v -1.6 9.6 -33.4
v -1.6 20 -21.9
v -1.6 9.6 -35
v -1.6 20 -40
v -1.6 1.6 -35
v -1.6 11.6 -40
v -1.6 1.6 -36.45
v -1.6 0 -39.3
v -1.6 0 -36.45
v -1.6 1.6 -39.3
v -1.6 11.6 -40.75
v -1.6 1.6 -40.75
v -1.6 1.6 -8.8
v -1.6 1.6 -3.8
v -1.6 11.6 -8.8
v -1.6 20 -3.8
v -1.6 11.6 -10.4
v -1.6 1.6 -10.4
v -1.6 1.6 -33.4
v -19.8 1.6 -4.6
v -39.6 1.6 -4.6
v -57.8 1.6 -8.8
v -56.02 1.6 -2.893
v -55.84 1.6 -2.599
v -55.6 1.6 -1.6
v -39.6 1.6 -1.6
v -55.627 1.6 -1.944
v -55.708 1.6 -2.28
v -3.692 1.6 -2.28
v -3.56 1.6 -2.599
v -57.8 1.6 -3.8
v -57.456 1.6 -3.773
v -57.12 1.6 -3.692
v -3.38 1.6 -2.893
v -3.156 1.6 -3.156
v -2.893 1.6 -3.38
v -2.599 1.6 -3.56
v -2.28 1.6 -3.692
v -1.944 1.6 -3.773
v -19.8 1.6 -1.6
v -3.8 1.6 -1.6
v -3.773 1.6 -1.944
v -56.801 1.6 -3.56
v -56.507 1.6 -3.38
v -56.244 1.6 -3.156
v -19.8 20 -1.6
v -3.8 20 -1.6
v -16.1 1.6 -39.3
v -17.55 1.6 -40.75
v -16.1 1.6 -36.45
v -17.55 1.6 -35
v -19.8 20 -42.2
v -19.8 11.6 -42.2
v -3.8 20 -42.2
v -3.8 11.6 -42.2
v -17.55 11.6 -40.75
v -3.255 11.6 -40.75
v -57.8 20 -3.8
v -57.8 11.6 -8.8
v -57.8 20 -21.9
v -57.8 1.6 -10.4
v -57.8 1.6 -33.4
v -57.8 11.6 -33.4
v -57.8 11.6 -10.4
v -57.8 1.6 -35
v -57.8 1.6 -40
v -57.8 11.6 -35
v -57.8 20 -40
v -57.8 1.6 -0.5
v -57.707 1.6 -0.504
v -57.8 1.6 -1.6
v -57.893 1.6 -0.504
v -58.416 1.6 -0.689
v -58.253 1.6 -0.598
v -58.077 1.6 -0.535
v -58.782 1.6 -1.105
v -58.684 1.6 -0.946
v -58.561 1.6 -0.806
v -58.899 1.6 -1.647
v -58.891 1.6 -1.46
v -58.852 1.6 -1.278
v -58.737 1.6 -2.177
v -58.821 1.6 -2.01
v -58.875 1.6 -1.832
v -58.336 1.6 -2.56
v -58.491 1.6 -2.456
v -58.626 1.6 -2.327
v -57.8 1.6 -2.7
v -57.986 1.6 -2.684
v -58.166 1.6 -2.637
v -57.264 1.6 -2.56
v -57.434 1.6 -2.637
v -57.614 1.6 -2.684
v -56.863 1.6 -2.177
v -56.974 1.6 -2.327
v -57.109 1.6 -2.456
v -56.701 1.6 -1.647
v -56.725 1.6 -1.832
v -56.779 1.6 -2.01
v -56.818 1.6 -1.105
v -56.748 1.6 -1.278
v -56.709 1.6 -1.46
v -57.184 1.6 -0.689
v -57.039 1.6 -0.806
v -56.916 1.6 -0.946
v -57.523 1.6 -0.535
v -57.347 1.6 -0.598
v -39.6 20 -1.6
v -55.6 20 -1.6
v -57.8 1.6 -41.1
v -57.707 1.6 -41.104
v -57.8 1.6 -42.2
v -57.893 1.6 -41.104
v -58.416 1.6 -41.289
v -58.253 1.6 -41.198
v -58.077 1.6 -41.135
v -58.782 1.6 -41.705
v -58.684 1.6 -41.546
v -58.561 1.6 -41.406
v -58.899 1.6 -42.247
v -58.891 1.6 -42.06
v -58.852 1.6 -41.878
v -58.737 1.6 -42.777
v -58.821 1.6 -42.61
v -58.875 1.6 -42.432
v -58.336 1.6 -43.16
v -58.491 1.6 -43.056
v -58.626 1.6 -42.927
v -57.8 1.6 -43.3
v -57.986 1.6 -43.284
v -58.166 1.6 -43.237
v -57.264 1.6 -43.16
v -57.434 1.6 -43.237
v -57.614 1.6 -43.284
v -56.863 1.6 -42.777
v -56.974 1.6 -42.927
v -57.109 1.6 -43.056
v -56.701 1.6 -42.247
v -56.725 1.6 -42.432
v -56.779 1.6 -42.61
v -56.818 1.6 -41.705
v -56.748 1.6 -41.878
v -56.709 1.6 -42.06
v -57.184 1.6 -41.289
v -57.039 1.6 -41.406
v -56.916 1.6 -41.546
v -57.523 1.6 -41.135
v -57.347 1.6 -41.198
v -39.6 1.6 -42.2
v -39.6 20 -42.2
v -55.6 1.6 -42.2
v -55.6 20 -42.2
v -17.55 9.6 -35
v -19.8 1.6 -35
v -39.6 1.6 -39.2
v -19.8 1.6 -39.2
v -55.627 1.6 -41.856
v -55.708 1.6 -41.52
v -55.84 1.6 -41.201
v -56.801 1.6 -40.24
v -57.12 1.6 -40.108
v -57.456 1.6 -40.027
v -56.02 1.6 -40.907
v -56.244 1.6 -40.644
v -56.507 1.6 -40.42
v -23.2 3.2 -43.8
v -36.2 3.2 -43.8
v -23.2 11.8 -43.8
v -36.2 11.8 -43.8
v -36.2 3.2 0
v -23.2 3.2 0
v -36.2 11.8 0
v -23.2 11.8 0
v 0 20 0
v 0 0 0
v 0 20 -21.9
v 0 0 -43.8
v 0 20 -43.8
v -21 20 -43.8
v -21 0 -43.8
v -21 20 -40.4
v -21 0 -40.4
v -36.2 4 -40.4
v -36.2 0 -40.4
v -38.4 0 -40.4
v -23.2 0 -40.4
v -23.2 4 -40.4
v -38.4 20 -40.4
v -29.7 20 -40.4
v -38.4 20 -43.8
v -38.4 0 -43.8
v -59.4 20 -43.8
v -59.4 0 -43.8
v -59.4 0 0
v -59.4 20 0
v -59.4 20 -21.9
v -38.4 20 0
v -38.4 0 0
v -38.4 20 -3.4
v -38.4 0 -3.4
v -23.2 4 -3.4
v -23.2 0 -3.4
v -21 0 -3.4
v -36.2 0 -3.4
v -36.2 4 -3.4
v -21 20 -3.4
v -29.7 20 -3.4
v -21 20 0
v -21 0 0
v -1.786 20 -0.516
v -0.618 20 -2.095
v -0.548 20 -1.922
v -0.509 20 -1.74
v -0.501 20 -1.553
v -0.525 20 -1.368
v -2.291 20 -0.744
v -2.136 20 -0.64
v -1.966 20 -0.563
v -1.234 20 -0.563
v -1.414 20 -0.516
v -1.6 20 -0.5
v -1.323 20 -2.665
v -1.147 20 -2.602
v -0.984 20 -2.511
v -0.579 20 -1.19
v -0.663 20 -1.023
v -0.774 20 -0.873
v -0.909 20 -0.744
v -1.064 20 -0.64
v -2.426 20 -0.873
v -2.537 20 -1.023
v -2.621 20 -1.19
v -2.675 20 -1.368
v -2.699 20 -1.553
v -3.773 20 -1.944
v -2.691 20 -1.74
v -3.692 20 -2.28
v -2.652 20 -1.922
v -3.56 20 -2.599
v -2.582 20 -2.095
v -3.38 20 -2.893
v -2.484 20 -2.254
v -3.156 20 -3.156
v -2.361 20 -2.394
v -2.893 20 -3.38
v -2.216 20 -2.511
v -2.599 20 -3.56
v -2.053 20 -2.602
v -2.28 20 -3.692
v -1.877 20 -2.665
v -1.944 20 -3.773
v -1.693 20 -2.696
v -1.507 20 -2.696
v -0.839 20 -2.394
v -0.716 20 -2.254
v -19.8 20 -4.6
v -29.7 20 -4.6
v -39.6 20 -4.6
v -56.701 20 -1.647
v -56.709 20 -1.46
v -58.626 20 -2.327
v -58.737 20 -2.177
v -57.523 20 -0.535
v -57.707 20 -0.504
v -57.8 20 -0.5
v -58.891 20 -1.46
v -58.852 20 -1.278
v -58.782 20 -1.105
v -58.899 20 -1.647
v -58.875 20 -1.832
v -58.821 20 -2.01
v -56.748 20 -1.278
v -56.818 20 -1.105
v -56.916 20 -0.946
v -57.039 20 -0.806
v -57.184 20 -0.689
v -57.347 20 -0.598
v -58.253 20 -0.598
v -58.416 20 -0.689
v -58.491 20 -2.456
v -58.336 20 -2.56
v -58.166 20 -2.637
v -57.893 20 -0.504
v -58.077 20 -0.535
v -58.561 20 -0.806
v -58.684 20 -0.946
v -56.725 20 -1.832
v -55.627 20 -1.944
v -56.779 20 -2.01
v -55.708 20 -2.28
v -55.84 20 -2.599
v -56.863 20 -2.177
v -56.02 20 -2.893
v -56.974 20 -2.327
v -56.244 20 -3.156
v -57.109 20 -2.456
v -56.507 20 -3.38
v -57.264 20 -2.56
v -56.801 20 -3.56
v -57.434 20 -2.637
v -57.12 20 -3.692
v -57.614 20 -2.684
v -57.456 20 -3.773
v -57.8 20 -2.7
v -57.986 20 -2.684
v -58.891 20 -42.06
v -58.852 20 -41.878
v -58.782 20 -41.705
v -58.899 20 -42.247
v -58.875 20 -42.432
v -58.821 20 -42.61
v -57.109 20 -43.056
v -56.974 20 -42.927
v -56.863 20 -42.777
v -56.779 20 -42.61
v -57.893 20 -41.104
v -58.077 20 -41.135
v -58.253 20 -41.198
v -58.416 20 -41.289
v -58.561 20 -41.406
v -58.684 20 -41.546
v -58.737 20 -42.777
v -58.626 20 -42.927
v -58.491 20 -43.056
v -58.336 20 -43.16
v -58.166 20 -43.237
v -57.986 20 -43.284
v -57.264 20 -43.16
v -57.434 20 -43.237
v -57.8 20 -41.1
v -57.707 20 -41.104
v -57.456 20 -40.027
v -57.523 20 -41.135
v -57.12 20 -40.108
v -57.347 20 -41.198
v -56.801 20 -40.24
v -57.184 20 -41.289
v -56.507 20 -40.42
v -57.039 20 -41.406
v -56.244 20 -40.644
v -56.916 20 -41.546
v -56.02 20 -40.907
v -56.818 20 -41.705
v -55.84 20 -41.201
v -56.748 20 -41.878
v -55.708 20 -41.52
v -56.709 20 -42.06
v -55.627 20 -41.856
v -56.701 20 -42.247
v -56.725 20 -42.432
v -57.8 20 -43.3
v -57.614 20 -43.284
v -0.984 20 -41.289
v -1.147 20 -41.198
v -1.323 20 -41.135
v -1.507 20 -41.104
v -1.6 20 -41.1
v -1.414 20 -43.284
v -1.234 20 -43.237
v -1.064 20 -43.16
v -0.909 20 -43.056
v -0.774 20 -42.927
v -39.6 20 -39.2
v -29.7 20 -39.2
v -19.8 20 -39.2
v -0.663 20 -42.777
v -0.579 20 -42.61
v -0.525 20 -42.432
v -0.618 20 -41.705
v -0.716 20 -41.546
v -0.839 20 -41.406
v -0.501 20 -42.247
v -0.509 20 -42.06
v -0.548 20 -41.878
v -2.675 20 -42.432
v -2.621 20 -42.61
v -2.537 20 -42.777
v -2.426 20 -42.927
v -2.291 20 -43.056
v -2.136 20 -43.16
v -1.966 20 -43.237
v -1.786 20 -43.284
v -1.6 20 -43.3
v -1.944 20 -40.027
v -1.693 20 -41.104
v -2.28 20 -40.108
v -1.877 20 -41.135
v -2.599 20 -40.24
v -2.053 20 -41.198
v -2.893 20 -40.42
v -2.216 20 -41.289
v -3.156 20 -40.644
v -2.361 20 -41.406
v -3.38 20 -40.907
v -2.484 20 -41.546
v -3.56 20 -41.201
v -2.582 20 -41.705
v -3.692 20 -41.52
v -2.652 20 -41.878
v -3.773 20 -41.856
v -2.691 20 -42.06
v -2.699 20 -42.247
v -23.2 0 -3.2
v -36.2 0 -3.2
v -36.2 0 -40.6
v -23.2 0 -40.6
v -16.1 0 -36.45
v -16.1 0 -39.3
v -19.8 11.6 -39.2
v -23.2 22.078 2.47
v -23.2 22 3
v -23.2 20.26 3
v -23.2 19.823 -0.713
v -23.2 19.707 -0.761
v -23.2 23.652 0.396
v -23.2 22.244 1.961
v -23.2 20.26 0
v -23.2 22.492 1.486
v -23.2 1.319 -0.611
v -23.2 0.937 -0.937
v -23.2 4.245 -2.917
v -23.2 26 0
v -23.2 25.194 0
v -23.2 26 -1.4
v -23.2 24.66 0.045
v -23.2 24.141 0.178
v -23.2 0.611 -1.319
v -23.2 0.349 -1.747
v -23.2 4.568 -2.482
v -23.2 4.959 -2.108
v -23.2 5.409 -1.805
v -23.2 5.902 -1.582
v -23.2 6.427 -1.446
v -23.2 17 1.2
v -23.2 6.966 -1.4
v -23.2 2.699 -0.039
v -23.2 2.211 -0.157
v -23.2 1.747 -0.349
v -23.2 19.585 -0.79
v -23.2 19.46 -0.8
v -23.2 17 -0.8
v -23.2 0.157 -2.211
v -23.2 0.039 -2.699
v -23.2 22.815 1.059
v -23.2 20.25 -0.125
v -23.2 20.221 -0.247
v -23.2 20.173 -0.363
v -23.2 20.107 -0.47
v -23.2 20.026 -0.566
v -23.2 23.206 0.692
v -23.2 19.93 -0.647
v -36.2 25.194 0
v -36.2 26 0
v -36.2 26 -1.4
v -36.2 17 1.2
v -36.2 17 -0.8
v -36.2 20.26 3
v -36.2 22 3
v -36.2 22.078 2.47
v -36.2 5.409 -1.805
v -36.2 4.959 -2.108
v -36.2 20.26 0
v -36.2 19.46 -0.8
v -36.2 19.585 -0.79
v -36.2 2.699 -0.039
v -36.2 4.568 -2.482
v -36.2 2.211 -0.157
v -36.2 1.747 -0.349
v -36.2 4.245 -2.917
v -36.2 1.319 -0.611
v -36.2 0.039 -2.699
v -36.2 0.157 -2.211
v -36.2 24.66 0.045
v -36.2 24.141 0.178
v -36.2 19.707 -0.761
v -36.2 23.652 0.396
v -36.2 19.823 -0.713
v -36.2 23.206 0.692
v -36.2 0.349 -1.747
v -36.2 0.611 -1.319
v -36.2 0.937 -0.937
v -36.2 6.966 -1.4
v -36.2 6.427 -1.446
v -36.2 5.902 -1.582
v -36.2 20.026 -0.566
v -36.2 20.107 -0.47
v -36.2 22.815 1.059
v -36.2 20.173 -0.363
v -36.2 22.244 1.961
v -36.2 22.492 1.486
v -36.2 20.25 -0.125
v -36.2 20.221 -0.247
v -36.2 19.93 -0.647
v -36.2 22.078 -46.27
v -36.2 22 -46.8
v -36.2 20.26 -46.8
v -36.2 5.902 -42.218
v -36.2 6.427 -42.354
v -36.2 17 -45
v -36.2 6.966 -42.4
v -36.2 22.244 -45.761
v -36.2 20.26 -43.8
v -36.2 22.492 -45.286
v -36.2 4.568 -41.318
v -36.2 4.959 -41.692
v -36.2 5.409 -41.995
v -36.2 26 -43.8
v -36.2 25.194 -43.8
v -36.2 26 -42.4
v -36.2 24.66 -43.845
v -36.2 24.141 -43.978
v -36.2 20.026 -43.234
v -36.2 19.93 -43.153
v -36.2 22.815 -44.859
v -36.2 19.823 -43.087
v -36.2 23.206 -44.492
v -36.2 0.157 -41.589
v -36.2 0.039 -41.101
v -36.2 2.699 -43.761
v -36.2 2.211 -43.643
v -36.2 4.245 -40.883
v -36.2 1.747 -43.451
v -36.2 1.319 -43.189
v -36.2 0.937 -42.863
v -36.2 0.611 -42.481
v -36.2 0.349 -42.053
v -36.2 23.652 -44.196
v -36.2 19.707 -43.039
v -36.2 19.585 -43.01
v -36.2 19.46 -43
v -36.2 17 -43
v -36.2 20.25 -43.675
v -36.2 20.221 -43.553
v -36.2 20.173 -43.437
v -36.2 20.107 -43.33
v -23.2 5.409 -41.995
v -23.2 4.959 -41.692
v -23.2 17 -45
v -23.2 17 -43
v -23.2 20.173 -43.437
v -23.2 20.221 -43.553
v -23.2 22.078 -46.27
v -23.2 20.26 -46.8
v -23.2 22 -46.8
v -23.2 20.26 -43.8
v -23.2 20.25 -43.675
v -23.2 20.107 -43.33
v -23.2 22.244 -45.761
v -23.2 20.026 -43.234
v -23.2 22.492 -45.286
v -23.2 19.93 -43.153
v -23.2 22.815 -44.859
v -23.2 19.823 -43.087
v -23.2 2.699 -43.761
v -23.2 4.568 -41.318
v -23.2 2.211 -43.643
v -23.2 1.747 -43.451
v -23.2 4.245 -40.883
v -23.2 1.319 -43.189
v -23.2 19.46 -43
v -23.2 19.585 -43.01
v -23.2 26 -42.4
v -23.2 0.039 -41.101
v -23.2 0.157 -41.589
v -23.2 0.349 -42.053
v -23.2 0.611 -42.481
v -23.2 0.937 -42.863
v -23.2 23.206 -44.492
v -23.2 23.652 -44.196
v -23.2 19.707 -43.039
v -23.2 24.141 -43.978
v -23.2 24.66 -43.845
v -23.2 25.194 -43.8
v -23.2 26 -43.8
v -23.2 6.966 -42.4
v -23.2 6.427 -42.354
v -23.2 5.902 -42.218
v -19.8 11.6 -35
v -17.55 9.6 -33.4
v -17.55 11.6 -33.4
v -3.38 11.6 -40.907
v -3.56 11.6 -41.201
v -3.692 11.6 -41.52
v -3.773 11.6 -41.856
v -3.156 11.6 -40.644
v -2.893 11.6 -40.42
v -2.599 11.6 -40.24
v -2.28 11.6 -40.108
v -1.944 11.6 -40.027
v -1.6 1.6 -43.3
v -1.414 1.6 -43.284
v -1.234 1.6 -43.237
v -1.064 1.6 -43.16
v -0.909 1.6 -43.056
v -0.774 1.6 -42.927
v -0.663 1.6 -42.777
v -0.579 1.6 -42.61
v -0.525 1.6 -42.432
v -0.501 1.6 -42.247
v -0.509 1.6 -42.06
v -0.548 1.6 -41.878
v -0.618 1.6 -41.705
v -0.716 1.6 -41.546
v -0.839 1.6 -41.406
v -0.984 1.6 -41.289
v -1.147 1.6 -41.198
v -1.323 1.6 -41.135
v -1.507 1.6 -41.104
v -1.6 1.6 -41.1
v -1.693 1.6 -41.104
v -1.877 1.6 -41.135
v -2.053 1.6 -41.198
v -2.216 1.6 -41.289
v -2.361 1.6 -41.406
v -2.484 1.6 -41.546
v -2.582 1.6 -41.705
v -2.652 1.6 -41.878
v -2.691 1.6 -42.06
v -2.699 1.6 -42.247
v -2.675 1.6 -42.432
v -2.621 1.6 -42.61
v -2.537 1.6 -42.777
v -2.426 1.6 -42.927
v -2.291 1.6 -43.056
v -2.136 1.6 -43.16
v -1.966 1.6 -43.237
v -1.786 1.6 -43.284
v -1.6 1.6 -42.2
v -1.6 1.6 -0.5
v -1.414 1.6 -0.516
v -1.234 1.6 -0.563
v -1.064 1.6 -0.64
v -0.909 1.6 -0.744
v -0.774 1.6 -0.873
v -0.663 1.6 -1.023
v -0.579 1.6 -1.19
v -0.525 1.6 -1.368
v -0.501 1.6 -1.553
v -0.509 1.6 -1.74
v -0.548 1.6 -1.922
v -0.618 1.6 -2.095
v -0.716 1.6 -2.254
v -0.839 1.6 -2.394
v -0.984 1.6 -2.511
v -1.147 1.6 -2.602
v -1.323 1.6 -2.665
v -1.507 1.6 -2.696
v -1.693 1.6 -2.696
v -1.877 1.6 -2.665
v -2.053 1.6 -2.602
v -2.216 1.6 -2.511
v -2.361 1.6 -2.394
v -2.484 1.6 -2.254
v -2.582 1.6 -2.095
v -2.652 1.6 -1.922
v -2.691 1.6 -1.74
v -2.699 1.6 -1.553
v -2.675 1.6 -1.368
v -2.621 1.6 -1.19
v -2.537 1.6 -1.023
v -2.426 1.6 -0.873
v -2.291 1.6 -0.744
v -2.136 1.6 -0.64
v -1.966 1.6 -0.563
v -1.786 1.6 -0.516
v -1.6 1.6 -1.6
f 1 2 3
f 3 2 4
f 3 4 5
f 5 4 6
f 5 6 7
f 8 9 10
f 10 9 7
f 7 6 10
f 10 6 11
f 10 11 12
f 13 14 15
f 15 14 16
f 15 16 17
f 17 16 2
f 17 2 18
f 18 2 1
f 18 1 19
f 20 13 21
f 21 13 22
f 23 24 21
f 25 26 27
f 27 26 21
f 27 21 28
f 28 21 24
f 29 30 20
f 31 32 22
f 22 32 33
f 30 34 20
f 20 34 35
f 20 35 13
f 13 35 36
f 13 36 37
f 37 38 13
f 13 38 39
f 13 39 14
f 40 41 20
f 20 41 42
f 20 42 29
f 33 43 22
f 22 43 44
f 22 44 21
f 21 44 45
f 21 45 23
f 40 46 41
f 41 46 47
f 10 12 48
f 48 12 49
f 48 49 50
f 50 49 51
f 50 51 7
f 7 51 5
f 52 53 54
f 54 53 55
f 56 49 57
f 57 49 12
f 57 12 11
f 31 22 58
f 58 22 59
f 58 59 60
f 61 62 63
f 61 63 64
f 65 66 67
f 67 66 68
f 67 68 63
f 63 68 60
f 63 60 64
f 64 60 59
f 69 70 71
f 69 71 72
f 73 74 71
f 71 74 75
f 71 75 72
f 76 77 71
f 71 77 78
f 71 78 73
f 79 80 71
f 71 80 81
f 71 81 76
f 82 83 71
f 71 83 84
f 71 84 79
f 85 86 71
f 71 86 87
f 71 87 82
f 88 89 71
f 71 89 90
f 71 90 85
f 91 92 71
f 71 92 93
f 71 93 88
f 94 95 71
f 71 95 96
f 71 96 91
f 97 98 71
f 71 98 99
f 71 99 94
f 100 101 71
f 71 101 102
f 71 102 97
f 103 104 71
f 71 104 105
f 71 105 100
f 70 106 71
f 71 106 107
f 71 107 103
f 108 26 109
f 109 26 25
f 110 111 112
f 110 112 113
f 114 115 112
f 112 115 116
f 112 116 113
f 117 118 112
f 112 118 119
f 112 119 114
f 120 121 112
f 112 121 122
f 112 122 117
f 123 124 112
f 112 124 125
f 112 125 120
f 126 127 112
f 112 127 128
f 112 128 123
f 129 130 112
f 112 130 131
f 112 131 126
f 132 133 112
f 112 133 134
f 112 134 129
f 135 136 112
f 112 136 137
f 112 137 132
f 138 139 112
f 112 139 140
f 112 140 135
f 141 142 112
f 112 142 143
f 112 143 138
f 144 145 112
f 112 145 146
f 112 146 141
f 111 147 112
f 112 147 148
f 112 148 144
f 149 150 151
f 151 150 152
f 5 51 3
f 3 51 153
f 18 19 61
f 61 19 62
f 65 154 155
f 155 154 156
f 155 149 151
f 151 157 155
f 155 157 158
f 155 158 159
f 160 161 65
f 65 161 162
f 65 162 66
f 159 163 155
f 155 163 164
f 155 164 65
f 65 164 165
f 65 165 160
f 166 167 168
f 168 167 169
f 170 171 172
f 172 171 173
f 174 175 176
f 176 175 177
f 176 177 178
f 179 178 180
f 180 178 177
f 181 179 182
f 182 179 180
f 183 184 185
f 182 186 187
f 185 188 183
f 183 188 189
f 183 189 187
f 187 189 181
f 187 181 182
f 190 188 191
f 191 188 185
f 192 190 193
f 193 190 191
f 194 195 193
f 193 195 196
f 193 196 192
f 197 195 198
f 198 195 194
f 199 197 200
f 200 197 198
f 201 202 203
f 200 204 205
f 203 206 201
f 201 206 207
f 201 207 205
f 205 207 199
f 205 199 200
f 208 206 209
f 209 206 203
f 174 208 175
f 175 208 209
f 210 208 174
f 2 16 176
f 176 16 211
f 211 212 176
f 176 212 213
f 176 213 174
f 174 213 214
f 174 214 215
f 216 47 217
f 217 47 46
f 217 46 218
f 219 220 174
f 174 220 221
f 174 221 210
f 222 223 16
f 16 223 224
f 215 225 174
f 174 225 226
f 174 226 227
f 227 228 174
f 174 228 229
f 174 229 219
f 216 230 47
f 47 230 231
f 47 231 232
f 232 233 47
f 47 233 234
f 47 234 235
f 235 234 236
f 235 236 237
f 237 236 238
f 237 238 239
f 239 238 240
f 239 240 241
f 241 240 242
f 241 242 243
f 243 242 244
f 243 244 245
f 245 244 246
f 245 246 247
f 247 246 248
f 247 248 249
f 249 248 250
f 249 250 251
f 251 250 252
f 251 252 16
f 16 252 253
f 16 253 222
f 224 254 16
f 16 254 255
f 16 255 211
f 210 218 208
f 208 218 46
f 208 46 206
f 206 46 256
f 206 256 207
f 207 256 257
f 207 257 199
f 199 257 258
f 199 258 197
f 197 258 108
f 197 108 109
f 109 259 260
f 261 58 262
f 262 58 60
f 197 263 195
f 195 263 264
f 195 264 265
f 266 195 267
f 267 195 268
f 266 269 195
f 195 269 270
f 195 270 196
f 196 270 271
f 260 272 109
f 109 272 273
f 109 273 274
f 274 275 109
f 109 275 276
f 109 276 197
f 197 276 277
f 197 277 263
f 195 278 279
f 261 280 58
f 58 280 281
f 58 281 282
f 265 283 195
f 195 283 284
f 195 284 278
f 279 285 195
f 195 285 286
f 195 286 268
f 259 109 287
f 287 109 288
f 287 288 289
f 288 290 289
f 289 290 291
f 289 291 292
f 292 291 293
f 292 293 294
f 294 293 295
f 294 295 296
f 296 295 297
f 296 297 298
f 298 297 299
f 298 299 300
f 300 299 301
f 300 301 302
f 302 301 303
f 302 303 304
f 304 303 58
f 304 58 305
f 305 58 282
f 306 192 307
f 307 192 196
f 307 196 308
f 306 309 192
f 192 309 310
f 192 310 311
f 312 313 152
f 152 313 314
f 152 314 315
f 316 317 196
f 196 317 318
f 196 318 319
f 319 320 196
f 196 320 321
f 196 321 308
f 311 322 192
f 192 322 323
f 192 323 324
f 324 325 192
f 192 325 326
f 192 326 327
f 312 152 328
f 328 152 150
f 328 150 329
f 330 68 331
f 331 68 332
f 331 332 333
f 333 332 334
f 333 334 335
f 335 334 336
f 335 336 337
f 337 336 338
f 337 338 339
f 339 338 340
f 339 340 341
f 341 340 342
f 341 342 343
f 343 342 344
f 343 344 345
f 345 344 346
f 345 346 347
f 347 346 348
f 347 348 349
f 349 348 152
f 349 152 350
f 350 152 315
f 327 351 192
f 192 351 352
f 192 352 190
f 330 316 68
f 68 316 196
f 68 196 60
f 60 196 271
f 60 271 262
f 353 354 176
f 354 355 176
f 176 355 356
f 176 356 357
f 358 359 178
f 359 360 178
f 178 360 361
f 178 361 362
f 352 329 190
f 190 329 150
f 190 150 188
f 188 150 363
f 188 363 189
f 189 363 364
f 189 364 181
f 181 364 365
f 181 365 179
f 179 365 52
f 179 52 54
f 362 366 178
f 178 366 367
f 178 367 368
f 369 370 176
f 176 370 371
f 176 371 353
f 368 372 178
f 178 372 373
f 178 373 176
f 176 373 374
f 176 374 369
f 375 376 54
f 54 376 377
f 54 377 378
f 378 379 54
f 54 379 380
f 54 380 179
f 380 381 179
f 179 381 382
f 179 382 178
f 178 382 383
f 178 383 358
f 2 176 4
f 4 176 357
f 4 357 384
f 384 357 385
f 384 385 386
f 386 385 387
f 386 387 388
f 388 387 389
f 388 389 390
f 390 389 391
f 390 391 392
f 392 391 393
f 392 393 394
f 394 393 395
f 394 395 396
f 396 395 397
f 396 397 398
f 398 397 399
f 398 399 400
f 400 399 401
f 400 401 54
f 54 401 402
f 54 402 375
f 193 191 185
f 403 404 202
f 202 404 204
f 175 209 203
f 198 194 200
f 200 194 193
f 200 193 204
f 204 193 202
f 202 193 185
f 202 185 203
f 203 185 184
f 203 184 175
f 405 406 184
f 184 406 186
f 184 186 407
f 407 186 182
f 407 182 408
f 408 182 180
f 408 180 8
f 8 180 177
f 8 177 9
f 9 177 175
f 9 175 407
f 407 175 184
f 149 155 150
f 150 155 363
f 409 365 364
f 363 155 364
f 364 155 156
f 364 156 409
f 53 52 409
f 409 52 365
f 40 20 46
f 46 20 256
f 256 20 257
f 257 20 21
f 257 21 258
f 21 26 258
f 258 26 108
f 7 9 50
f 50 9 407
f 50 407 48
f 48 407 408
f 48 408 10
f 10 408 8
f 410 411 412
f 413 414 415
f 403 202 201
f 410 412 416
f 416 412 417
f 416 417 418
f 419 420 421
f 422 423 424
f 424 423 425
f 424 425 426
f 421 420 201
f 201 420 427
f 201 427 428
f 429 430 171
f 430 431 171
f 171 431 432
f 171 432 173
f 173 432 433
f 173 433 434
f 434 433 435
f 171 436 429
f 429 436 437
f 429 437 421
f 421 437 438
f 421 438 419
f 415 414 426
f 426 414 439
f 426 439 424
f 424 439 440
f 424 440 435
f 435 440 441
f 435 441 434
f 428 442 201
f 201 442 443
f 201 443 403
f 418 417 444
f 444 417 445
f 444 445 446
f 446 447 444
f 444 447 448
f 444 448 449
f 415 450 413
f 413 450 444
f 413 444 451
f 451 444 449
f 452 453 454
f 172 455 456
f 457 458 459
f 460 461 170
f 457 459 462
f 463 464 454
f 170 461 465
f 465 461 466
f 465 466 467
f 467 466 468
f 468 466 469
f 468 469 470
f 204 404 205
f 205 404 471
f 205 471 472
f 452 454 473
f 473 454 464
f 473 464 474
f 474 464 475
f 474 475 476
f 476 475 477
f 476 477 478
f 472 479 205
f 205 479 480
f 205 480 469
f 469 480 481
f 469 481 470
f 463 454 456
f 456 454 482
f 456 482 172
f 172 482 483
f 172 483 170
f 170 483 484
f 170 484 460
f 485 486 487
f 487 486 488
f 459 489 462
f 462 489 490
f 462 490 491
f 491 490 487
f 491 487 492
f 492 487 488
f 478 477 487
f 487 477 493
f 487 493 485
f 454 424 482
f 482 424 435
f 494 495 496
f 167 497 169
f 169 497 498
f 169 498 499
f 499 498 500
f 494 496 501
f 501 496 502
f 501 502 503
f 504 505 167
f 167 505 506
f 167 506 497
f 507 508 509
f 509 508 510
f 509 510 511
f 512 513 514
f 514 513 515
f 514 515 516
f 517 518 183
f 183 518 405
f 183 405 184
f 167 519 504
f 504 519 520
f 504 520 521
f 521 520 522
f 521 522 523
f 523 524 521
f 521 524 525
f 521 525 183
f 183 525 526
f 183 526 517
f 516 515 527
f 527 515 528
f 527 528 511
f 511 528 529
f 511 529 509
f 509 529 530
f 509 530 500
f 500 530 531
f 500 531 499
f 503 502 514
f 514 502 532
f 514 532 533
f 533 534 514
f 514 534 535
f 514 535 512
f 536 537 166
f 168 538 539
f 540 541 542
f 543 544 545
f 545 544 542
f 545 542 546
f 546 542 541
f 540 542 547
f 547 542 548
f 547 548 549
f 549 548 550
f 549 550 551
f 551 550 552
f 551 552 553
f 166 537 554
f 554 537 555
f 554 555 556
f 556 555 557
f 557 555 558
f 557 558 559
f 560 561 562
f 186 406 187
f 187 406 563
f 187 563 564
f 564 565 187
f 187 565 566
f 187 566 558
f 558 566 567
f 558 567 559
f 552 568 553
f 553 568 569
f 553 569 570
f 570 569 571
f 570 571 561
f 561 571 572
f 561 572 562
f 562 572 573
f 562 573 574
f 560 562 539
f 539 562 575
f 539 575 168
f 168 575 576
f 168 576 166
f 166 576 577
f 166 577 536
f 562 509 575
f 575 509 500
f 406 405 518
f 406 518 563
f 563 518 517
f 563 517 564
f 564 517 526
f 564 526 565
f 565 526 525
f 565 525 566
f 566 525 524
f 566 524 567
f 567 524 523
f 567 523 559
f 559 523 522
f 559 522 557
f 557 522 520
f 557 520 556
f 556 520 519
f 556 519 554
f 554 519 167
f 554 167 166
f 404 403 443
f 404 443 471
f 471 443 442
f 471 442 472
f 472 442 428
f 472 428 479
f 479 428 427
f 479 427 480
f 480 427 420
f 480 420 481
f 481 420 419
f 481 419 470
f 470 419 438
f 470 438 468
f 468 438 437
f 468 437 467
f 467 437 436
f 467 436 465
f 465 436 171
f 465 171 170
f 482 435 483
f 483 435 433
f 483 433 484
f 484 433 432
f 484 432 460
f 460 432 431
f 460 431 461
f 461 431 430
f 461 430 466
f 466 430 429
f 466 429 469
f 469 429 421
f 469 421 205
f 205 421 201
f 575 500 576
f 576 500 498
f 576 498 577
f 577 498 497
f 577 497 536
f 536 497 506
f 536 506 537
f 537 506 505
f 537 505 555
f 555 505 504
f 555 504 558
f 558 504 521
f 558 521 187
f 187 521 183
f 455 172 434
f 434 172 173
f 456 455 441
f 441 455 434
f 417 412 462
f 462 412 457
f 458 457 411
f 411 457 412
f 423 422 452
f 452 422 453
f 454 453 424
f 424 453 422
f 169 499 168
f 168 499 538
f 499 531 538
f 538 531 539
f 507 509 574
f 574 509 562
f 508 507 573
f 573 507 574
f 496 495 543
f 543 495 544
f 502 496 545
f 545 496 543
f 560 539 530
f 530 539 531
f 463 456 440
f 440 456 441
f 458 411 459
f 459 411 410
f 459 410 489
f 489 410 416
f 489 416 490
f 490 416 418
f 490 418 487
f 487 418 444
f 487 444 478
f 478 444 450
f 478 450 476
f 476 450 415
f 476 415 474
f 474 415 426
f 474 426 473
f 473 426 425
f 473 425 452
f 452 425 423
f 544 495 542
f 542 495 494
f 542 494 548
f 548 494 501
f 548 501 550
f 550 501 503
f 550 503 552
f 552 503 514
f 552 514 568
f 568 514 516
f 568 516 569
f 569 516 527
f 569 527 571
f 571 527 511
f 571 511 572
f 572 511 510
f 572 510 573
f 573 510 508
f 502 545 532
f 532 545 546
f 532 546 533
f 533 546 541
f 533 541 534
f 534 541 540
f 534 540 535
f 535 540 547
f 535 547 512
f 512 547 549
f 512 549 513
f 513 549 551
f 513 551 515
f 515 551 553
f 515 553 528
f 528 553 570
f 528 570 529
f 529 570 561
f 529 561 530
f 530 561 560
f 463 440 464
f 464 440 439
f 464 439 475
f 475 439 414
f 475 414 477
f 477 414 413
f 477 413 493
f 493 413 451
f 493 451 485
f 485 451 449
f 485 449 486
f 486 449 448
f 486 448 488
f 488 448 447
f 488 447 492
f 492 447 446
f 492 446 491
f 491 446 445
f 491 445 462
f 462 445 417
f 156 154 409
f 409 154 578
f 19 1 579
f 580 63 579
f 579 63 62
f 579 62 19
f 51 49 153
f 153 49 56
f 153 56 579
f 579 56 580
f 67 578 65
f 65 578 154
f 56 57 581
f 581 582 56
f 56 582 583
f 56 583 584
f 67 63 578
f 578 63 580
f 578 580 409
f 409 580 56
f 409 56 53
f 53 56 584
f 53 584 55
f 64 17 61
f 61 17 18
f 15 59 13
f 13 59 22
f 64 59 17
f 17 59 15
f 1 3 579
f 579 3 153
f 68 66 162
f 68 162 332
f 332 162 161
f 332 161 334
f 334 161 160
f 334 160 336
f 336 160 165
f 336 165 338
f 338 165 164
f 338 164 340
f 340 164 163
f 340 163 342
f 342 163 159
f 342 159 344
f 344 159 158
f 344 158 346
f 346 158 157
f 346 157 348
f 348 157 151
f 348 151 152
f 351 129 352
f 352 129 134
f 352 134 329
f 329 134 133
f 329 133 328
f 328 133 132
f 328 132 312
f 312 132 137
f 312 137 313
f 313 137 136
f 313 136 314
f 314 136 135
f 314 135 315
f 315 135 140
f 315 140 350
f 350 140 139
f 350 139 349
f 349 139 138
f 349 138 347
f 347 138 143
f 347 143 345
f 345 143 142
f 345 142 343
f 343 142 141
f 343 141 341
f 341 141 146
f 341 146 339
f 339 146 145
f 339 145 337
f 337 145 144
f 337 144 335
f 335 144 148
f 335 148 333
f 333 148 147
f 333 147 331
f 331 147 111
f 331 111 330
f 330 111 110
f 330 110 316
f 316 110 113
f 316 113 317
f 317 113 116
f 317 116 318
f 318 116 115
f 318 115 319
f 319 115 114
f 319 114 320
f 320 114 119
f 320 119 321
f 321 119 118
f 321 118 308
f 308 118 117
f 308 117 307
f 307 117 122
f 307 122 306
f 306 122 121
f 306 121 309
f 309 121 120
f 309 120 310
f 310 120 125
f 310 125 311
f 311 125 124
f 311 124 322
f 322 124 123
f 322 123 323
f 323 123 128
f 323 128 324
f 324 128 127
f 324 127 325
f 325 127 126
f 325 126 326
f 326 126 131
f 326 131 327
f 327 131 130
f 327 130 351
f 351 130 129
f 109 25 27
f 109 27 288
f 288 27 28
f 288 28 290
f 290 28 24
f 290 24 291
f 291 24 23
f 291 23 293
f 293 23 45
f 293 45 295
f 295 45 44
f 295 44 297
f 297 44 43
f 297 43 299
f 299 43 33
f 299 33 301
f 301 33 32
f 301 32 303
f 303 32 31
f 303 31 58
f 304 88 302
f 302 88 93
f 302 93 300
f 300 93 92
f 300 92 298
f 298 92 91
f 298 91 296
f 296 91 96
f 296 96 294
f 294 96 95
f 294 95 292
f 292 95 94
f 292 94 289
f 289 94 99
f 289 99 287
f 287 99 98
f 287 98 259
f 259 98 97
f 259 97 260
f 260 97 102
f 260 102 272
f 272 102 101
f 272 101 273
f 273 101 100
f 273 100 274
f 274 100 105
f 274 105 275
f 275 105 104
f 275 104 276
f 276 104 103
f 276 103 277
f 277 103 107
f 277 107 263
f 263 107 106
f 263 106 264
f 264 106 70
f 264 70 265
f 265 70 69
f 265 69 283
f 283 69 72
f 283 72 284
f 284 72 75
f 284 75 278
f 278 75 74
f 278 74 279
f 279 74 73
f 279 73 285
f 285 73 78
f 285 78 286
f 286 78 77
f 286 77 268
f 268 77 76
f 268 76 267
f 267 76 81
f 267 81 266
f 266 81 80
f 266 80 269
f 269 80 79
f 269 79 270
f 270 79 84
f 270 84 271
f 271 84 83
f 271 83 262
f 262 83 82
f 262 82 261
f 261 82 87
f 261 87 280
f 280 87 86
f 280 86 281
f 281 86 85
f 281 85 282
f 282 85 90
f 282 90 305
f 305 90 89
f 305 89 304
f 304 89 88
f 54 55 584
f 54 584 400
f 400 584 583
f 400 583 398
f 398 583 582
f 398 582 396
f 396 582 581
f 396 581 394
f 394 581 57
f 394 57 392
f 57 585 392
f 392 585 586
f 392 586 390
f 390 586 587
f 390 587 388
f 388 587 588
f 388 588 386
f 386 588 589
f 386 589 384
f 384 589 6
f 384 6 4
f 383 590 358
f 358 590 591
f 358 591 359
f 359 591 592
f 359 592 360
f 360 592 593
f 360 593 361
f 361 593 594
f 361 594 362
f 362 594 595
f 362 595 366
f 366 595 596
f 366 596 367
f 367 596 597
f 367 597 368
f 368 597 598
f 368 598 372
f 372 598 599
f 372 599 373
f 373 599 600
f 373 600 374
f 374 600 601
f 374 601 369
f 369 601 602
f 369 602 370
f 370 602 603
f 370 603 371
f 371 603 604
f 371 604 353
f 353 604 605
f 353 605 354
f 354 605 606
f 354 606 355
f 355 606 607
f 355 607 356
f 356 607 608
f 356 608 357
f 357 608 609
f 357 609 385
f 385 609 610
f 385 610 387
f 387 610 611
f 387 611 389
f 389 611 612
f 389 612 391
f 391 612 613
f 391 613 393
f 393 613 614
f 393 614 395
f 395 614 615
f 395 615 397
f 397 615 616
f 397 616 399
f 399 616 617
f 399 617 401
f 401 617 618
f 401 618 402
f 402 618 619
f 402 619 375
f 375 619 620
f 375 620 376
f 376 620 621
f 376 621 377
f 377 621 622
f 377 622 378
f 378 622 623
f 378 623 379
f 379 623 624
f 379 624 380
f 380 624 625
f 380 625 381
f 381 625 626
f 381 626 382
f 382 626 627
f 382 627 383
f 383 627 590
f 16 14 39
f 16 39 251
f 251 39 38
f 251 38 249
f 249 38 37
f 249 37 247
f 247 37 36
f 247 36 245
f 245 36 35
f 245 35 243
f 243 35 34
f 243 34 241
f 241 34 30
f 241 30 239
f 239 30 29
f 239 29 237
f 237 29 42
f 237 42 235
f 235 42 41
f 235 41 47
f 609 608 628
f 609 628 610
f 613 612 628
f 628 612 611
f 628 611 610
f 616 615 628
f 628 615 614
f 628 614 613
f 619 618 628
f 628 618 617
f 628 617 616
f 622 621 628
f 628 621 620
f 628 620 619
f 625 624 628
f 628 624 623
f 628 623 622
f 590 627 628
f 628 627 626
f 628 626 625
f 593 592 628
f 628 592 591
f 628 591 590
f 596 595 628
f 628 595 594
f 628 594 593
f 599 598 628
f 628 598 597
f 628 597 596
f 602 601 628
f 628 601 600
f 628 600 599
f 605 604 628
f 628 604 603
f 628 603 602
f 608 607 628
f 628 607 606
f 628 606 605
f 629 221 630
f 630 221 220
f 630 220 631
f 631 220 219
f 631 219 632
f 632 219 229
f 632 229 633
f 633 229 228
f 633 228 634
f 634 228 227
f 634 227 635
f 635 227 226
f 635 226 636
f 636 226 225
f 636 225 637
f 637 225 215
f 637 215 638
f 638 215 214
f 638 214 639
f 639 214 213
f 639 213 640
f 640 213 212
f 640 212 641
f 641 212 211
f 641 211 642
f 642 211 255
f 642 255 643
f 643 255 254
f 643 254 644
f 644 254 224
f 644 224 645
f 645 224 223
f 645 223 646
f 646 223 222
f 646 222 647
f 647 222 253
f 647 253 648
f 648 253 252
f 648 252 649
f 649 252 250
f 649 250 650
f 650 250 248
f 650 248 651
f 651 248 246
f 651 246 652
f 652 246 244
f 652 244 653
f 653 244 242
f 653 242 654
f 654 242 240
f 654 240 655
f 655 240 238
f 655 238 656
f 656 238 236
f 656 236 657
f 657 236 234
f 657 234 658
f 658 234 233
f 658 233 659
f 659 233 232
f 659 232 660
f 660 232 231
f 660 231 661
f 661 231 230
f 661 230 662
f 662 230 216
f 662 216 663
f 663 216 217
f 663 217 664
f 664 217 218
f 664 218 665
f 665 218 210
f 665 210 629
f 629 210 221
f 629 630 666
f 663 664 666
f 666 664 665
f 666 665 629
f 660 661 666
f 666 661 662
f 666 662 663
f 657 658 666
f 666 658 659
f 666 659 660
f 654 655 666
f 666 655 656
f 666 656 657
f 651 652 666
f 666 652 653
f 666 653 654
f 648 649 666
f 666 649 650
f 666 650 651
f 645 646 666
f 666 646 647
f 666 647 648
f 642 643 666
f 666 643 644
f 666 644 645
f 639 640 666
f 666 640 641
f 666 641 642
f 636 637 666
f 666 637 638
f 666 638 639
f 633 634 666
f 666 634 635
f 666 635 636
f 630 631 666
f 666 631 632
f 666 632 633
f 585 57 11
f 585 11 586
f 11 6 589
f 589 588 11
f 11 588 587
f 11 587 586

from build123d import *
from build123d.topology import SkipClean

# Parameters (mm, degrees)
BOSS_EXTRUDE1_DEPTH   = 20
CUT_EXTRUDE1_DEPTH    = 18.4
SKETCH3_W             = 14.5
SKETCH3_H             = 2.85
CUT_EXTRUDE2_DEPTH    = 18.4
SKETCH4_W             = 13
SKETCH4_H             = 1.4
BOSS_EXTRUDE2_DEPTH   = 22
BOSS_EXTRUDE2_2_DEPTH = 22
SKETCH5_W             = 13
SKETCH5_H             = 3.4
BOSS_EXTRUDE3_DEPTH   = 4
FILLET1_R             = 3.2
FILLET2_R             = 3.2
BOSS_EXTRUDE4_DEPTH   = 13
SKETCH8_W             = 0.8
SKETCH8_H             = 3.26
CUT_EXTRUDE3_DEPTH    = 13
FILLET3_R             = 3.2
FILLET4_R             = 0.8
SKETCH9_W             = 56.2
SKETCH9_H             = 1.6
BOSS_EXTRUDE5_DEPTH   = 10
SKETCH13_W            = 15.95
SKETCH13_H            = 1.6
CUT_EXTRUDE6_DEPTH    = 2
BOSS_EXTRUDE6_DEPTH   = 18.4
CUT_EXTRUDE5_START    = -18.4
SKETCH12_R            = 1.1
CUT_EXTRUDE5_DEPTH    = 18.4
SKETCH14_W            = 15.95
SKETCH14_H            = 5.75
CUT_EXTRUDE7_DEPTH    = 10


with BuildPart() as part:
    # Sketch1 → Boss-Extrude1 (new body)
    with BuildSketch(Plane(origin=(0, 0, 0), x_dir=(1, 0, 0), z_dir=(0, 1, 0))):
        Polygon((-38.4, 43.8), (-38.4, 40.4), (-21, 40.4), (-21, 43.8), (0, 43.8), (0, 0), (-21, 0), (-21, 3.4), (-38.4, 3.4), (-38.4, 0), (-59.4, 0), (-59.4, 43.8), align=None)
    extrude(amount=BOSS_EXTRUDE1_DEPTH)

    # Sketch2 → Cut-Extrude1 (cut)
    with BuildSketch(Plane(origin=(0, 20, 0), x_dir=(1, 0, 0), z_dir=(0, 1, 0))):
        Polygon((-57.8, 42.2), (-39.6, 42.2), (-39.6, 39.2), (-19.8, 39.2), (-19.8, 42.2), (-1.6, 42.2), (-1.6, 1.6), (-19.8, 1.6), (-19.8, 4.6), (-39.6, 4.6), (-39.6, 1.6), (-57.8, 1.6), align=None)
    extrude(amount=-CUT_EXTRUDE1_DEPTH, mode=Mode.SUBTRACT)

    # Sketch3 → Cut-Extrude2 (cut)
    with BuildSketch(Plane(origin=(0, 1.6, 0), x_dir=(1, 0, 0), z_dir=(0, 1, 0))):
        with Locations((-8.85, 37.875)):
            Rectangle(SKETCH3_W, SKETCH3_H)
    extrude(amount=-CUT_EXTRUDE2_DEPTH, mode=Mode.SUBTRACT)



with BuildPart() as body_2:
    # Sketch4 → Boss-Extrude2 (new body)
    with BuildSketch(Plane.XZ):
        with Locations((-29.7, -0.7)):
            Rectangle(SKETCH4_W, SKETCH4_H)
    extrude(amount=-BOSS_EXTRUDE2_DEPTH)


with BuildPart() as body_3:
    # Sketch4 → Boss-Extrude2 2 (new body)
    with BuildSketch(Plane.XZ):
        with Locations((-29.7, -43.1)):
            Rectangle(SKETCH4_W, SKETCH4_H)
    extrude(amount=-BOSS_EXTRUDE2_2_DEPTH)


with BuildPart() as part_1:
    add(part.part)

    add(body_2.part)  # Boss-Extrude3 merges body 2

    add(body_3.part)  # Boss-Extrude3 merges body 3
    # Sketch5 → Boss-Extrude3 (add)
    with BuildSketch(Plane(origin=(0, 0, 0), x_dir=(-1, 0, 0), z_dir=(0, -1, 0))):
        with Locations((29.7, 1.7)):
            Rectangle(SKETCH5_W, SKETCH5_H)
        with Locations((29.7, 42.1)):
            Rectangle(SKETCH5_W, SKETCH5_H)
    extrude(amount=-BOSS_EXTRUDE3_DEPTH)

    # Fillet1
    fillet1_edges = [part_1.edges().sort_by_distance(p)[0] for p in [
        (-29.7, 0, -43.8),
        (-29.7, 0, 0),
    ]]
    fillet(fillet1_edges, radius=FILLET1_R)

    # Fillet2
    # the kernel refuses this fillet: 3.2 mm, written as the material it adds along each edge
    with BuildSketch(Plane(origin=(-36.2, 4, -1.4), x_dir=(0, 0, -1), z_dir=(1, 0, 0)), Plane(origin=(-23.2, 4, -42.4), x_dir=(0, 0, 1), z_dir=(-1, 0, 0))) as fillet2_piece_1:
        with BuildLine():
            CenterArc((3.2, 2.966479395), FILLET2_R, 180, 67.975687163)
            Line((0, 2.966479395), (-0.064, 2.966479395))
            Line((-0.064, 2.966479395), (-0.064, 0))
            Line((-0.064, 0), (0, -0.064))
            ThreePointArc((0, -0.064), (1, -0.064), (1.976, -0.059329588))
            Line((1.976, -0.059329588), (2, 0))
        make_face()
    extrude(amount=13)

    # Sketch7 → Boss-Extrude4 (add)
    with BuildSketch(Plane(origin=(-23.2, 0, 0), x_dir=(0, 0, -1), z_dir=(1, 0, 0))):
        Polygon((-1.2, 17), (0, 17), (0, 11.8), align=None)
        Polygon((43.8, 11.8), (43.8, 17), (45, 17), align=None)
        Polygon((0, 22), (-3, 22), (-3, 20.26), (1.4, 20.26), (1.4, 22), (1.4, 26), (0, 26), align=None)
        Polygon((43.8, 22), (46.8, 22), (46.8, 20.26), (42.4, 20.26), (42.4, 22), (42.4, 26), (43.8, 26), align=None)
    extrude(amount=-BOSS_EXTRUDE4_DEPTH)

    # Sketch8 → Cut-Extrude3 (cut)
    with BuildSketch(Plane(origin=(-23.2, 0, 0), x_dir=(0, 0, -1), z_dir=(1, 0, 0))):
        with Locations((0.4, 18.63)):
            Rectangle(SKETCH8_W, SKETCH8_H)
        with Locations((43.4, 18.63)):
            Rectangle(SKETCH8_W, SKETCH8_H)
    extrude(amount=-CUT_EXTRUDE3_DEPTH, mode=Mode.SUBTRACT)

    # Fillet3
    # the kernel refuses this fillet: 3.2 mm, written as the material it adds along each edge
    with BuildSketch(Plane(origin=(-36.2, 22, 0), x_dir=(0, 1, 0), z_dir=(1, 0, 0)), Plane(origin=(-23.2, 22, -43.8), x_dir=(0, 1, 0), z_dir=(-1, 0, 0))) as fillet3_piece_1:
        with BuildLine():
            CenterArc((3.193743885, 3.2), FILLET3_R, 183.583321698, 86.416678302)
            Line((0, 3), (-0.063874878, 2.996))
            ThreePointArc((-0.063874878, 2.996), (-0.064, 1.5), (-0.064, 0))
            Line((-0.064, 0), (0, -0.064))
            Line((0, -0.064), (3.193743885, -0.064))
            Line((3.193743885, -0.064), (3.193743885, 0))
        make_face()
    extrude(amount=13)

    # Fillet4
    fillet4_edges = [part_1.edges().sort_by_distance(p)[0] for p in [
        (-29.7, 20.26, -0.8),
        (-29.7, 20.26, -43),
    ]]
    fillet(fillet4_edges, radius=FILLET4_R)

    # Sketch9 → Boss-Extrude5 (add)
    with BuildSketch(Plane(origin=(0, 1.6, 0), x_dir=(1, 0, 0), z_dir=(0, 1, 0))):
        Polygon((-57.8, 35), (-19.8, 35), (-19.8, 39.2), (-19.8, 42.2), (-1.6, 42.2), (-1.6, 40.75), (-17.55, 40.75), (-17.55, 35), (-1.6, 35), (-1.6, 33.4), (-57.8, 33.4), align=None)
        with Locations((-29.7, 9.6)):
            Rectangle(SKETCH9_W, SKETCH9_H)
    extrude(amount=BOSS_EXTRUDE5_DEPTH)

    # Sketch13 → Cut-Extrude6 (cut)
    with BuildSketch(Plane(origin=(0, 11.6, 0), x_dir=(1, 0, 0), z_dir=(0, 1, 0))):
        with Locations((-9.575, 34.2)):
            Rectangle(SKETCH13_W, SKETCH13_H)
    extrude(amount=-CUT_EXTRUDE6_DEPTH, mode=Mode.SUBTRACT)

    # Sketch11 → Boss-Extrude6 (add)
    with BuildSketch(Plane(origin=(0, 1.6, 0), x_dir=(1, 0, 0), z_dir=(0, 1, 0))):
        with BuildLine():
            Line((-57.8, 41.1), (-57.8, 40))
            ThreePointArc((-57.8, 40), (-56.244365081, 40.644365081), (-55.6, 42.2))
            Line((-55.6, 42.2), (-56.7, 42.2))
            ThreePointArc((-56.7, 42.2), (-57.022182541, 41.422182541), (-57.8, 41.1))
        make_face()
        with BuildLine():
            Line((-56.7, 1.6), (-55.6, 1.6))
            ThreePointArc((-55.6, 1.6), (-56.244365081, 3.155634919), (-57.8, 3.8))
            Line((-57.8, 3.8), (-57.8, 2.7))
            ThreePointArc((-57.8, 2.7), (-57.022182541, 2.377817459), (-56.7, 1.6))
        make_face()
        with BuildLine():
            Line((-1.6, 40), (-1.6, 41.1))
            ThreePointArc((-1.6, 41.1), (-2.377817459, 41.422182541), (-2.7, 42.2))
            Line((-2.7, 42.2), (-3.8, 42.2))
            ThreePointArc((-3.8, 42.2), (-3.155634919, 40.644365081), (-1.6, 40))
        make_face()
        with BuildLine():
            ThreePointArc((-1.6, 3.8), (-3.155634919, 3.155634919), (-3.8, 1.6))
            Line((-3.8, 1.6), (-1.6, 1.6))
            Line((-1.6, 1.6), (-1.6, 3.8))
        make_face()
    extrude(amount=BOSS_EXTRUDE6_DEPTH)

    # Sketch12 → Cut-Extrude5 (cut)
    with SkipClean():  # the faces are left unmerged after this step: merging them gives an invalid solid
        with BuildSketch(Plane(origin=(0, 20, 0), x_dir=(1, 0, 0), z_dir=(0, 1, 0)).offset(CUT_EXTRUDE5_START)):
            with Locations(Location((-57.8, 42.2, 0), (0, 0, 270))):
                Circle(SKETCH12_R)
            with Locations(Location((-57.8, 1.6, 0), (0, 0, 270))):
                Circle(SKETCH12_R)
            with Locations(Location((-1.6, 1.6, 0), (0, 0, 270))):
                Circle(SKETCH12_R)
            with Locations(Location((-1.6, 42.2, 0), (0, 0, 270))):
                Circle(SKETCH12_R)
        extrude(amount=CUT_EXTRUDE5_DEPTH, mode=Mode.SUBTRACT)

    # Sketch14 → Cut-Extrude7 (cut)
    with SkipClean():  # the faces are left unmerged after this step: merging them gives an invalid solid
        with BuildSketch(Plane(origin=(0, 1.6, 0), x_dir=(1, 0, 0), z_dir=(0, 1, 0))):
            with Locations((-9.575, 37.875)):
                Rectangle(SKETCH14_W, SKETCH14_H)
        extrude(amount=CUT_EXTRUDE7_DEPTH, mode=Mode.SUBTRACT)


solid = part_1.part
